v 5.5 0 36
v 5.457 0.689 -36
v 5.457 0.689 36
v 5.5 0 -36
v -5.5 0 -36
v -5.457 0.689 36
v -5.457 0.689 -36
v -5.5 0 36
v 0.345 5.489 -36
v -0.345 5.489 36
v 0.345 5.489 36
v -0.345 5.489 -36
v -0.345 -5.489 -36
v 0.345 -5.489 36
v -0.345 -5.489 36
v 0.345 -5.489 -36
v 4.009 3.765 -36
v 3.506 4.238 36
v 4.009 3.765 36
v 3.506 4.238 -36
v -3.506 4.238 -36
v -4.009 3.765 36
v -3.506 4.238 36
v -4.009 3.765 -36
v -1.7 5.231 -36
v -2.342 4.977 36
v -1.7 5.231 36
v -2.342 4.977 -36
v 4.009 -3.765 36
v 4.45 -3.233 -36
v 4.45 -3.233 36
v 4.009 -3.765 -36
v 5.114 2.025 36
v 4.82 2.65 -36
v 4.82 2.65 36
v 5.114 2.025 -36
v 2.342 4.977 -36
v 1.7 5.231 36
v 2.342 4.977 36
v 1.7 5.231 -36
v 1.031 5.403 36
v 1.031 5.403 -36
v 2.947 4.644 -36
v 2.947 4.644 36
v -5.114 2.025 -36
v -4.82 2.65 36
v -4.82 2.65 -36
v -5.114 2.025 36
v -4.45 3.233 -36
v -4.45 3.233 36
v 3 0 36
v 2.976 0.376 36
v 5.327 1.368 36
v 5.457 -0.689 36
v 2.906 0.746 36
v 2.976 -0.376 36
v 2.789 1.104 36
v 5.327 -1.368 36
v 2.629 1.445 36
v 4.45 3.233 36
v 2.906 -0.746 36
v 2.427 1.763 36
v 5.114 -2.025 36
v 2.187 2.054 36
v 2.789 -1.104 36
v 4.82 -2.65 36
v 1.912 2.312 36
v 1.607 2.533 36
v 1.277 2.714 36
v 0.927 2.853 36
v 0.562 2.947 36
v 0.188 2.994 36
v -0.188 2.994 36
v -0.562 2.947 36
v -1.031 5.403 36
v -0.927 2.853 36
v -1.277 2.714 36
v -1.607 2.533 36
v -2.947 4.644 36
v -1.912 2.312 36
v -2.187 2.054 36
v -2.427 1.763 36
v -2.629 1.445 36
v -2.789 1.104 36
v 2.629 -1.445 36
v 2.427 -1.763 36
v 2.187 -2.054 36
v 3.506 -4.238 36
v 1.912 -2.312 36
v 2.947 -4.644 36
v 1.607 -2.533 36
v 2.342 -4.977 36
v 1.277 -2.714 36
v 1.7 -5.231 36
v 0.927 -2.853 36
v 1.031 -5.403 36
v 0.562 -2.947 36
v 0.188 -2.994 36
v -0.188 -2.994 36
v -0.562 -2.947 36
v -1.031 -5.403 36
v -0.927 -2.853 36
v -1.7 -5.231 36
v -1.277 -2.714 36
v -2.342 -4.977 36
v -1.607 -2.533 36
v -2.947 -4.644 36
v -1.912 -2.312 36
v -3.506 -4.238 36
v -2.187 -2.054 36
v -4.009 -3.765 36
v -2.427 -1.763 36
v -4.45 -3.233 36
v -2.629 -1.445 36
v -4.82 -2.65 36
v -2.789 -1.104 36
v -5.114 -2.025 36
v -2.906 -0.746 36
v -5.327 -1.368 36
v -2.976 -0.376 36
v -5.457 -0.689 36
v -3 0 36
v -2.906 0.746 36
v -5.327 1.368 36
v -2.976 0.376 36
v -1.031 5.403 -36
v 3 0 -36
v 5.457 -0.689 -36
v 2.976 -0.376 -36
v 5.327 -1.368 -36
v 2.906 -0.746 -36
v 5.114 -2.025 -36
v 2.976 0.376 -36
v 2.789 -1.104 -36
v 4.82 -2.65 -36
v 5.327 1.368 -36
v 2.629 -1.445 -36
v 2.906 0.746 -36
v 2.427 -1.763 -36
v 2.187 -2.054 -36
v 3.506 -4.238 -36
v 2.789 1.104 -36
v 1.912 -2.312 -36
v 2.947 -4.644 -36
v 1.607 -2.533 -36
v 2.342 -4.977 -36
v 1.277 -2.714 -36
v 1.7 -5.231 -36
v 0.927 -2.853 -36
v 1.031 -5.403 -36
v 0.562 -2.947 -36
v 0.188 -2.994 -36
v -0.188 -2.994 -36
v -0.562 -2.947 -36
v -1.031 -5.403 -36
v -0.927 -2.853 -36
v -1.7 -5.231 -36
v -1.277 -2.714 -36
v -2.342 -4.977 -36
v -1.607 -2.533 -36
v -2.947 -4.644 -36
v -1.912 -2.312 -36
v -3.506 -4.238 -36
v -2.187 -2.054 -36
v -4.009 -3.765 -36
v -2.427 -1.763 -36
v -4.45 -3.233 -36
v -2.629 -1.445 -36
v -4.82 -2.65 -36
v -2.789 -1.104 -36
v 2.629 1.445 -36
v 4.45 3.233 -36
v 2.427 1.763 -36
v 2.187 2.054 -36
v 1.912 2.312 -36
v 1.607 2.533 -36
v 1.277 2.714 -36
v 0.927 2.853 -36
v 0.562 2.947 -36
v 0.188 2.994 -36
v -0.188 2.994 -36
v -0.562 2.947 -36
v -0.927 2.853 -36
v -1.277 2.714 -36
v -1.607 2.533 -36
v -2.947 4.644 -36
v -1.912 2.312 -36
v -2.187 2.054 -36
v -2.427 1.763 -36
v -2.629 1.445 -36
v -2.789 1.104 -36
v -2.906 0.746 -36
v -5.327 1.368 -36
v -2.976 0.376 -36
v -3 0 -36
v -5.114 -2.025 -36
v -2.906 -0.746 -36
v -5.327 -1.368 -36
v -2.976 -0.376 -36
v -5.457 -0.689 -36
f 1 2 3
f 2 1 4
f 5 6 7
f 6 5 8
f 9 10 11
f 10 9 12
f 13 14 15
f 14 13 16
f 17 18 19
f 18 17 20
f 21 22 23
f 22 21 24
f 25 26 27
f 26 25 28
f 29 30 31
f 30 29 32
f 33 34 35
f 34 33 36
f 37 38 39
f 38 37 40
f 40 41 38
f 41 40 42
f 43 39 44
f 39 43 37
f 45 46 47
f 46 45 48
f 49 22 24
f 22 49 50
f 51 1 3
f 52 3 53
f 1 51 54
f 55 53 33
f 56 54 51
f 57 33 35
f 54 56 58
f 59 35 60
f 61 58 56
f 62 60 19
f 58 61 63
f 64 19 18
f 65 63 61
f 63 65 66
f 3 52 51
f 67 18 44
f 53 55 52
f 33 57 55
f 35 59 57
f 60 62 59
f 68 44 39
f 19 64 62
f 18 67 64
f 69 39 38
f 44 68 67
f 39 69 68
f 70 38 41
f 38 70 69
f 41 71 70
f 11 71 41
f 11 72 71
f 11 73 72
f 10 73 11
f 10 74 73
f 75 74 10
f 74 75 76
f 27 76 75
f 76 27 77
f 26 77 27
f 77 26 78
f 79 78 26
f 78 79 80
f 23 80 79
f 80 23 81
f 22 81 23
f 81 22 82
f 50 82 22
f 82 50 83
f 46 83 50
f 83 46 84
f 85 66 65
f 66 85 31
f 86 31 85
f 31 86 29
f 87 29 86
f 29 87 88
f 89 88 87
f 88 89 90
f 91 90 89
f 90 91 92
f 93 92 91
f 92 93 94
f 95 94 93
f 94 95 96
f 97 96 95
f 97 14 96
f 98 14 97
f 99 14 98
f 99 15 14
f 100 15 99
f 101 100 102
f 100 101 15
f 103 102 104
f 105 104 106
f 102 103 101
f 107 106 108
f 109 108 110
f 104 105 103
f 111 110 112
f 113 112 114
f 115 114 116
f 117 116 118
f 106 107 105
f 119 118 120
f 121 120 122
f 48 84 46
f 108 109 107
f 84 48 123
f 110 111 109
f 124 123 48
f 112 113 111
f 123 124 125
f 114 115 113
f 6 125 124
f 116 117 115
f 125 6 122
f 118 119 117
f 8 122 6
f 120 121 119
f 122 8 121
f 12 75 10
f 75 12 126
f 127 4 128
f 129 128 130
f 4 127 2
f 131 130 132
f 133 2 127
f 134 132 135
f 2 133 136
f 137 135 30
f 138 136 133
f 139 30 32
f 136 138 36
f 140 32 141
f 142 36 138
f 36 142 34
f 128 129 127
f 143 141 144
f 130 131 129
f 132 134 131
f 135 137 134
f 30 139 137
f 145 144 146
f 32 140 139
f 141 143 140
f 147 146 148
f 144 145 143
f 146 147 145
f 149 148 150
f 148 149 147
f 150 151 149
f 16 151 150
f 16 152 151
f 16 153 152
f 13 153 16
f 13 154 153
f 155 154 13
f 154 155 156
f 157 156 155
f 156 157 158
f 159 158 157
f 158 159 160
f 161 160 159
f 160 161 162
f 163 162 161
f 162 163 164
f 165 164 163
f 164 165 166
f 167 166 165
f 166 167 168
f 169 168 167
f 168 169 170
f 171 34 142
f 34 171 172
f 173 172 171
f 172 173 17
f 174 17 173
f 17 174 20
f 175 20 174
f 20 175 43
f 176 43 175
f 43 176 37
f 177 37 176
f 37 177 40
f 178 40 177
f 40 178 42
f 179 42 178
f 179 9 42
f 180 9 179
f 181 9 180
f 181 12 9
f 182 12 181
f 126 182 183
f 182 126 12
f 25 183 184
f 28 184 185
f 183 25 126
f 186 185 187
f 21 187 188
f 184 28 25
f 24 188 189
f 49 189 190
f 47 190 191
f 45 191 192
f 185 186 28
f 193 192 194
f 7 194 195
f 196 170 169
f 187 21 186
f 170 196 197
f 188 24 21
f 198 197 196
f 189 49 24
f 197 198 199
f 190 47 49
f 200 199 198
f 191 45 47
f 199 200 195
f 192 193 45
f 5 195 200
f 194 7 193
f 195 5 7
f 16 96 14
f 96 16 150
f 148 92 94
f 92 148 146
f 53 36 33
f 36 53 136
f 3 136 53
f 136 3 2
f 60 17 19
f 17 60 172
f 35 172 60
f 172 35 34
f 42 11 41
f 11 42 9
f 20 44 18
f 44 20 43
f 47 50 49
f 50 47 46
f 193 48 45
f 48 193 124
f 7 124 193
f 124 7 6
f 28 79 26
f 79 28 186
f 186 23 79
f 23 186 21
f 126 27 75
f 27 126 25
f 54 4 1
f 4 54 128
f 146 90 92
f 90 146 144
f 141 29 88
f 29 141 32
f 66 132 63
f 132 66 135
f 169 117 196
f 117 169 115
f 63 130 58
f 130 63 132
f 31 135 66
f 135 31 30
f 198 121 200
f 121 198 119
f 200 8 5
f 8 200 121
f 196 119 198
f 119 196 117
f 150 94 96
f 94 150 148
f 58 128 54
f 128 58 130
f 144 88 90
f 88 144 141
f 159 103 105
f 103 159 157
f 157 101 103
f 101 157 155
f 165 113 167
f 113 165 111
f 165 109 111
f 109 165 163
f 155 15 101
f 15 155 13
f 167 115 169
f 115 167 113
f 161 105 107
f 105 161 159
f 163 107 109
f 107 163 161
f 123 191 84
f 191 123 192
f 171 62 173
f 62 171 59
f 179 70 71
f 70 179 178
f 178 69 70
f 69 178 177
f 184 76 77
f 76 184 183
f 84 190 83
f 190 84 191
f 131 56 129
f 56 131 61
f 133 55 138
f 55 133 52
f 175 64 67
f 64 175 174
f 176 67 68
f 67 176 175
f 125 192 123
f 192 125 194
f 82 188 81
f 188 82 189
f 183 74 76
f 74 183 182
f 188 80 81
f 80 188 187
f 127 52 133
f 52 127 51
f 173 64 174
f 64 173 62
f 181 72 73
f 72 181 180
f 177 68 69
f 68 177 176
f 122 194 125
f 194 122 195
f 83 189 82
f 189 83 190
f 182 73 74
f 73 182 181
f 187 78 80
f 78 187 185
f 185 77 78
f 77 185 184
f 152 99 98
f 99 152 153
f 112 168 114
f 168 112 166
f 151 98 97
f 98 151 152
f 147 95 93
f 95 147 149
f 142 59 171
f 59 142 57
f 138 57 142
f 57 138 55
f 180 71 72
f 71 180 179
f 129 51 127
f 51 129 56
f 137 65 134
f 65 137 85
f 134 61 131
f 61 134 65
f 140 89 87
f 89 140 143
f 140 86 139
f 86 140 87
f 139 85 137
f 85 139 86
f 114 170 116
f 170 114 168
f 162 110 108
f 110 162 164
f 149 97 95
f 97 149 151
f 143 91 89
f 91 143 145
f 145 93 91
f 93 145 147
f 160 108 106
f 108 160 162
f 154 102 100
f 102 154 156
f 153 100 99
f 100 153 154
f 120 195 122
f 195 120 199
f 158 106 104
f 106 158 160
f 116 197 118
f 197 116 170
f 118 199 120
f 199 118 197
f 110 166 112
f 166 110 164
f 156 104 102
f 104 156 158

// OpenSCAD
$fn = 50;


difference() {
	union() {
		translate(v = [0, 0, -36.0000000000]) {
			cylinder(h = 72, r = 5.5000000000);
		}
	}
	union() {
		translate(v = [0, 0, -100.0000000000]) {
			cylinder(h = 200, r = 3.0000000000);
		}
	}
}
